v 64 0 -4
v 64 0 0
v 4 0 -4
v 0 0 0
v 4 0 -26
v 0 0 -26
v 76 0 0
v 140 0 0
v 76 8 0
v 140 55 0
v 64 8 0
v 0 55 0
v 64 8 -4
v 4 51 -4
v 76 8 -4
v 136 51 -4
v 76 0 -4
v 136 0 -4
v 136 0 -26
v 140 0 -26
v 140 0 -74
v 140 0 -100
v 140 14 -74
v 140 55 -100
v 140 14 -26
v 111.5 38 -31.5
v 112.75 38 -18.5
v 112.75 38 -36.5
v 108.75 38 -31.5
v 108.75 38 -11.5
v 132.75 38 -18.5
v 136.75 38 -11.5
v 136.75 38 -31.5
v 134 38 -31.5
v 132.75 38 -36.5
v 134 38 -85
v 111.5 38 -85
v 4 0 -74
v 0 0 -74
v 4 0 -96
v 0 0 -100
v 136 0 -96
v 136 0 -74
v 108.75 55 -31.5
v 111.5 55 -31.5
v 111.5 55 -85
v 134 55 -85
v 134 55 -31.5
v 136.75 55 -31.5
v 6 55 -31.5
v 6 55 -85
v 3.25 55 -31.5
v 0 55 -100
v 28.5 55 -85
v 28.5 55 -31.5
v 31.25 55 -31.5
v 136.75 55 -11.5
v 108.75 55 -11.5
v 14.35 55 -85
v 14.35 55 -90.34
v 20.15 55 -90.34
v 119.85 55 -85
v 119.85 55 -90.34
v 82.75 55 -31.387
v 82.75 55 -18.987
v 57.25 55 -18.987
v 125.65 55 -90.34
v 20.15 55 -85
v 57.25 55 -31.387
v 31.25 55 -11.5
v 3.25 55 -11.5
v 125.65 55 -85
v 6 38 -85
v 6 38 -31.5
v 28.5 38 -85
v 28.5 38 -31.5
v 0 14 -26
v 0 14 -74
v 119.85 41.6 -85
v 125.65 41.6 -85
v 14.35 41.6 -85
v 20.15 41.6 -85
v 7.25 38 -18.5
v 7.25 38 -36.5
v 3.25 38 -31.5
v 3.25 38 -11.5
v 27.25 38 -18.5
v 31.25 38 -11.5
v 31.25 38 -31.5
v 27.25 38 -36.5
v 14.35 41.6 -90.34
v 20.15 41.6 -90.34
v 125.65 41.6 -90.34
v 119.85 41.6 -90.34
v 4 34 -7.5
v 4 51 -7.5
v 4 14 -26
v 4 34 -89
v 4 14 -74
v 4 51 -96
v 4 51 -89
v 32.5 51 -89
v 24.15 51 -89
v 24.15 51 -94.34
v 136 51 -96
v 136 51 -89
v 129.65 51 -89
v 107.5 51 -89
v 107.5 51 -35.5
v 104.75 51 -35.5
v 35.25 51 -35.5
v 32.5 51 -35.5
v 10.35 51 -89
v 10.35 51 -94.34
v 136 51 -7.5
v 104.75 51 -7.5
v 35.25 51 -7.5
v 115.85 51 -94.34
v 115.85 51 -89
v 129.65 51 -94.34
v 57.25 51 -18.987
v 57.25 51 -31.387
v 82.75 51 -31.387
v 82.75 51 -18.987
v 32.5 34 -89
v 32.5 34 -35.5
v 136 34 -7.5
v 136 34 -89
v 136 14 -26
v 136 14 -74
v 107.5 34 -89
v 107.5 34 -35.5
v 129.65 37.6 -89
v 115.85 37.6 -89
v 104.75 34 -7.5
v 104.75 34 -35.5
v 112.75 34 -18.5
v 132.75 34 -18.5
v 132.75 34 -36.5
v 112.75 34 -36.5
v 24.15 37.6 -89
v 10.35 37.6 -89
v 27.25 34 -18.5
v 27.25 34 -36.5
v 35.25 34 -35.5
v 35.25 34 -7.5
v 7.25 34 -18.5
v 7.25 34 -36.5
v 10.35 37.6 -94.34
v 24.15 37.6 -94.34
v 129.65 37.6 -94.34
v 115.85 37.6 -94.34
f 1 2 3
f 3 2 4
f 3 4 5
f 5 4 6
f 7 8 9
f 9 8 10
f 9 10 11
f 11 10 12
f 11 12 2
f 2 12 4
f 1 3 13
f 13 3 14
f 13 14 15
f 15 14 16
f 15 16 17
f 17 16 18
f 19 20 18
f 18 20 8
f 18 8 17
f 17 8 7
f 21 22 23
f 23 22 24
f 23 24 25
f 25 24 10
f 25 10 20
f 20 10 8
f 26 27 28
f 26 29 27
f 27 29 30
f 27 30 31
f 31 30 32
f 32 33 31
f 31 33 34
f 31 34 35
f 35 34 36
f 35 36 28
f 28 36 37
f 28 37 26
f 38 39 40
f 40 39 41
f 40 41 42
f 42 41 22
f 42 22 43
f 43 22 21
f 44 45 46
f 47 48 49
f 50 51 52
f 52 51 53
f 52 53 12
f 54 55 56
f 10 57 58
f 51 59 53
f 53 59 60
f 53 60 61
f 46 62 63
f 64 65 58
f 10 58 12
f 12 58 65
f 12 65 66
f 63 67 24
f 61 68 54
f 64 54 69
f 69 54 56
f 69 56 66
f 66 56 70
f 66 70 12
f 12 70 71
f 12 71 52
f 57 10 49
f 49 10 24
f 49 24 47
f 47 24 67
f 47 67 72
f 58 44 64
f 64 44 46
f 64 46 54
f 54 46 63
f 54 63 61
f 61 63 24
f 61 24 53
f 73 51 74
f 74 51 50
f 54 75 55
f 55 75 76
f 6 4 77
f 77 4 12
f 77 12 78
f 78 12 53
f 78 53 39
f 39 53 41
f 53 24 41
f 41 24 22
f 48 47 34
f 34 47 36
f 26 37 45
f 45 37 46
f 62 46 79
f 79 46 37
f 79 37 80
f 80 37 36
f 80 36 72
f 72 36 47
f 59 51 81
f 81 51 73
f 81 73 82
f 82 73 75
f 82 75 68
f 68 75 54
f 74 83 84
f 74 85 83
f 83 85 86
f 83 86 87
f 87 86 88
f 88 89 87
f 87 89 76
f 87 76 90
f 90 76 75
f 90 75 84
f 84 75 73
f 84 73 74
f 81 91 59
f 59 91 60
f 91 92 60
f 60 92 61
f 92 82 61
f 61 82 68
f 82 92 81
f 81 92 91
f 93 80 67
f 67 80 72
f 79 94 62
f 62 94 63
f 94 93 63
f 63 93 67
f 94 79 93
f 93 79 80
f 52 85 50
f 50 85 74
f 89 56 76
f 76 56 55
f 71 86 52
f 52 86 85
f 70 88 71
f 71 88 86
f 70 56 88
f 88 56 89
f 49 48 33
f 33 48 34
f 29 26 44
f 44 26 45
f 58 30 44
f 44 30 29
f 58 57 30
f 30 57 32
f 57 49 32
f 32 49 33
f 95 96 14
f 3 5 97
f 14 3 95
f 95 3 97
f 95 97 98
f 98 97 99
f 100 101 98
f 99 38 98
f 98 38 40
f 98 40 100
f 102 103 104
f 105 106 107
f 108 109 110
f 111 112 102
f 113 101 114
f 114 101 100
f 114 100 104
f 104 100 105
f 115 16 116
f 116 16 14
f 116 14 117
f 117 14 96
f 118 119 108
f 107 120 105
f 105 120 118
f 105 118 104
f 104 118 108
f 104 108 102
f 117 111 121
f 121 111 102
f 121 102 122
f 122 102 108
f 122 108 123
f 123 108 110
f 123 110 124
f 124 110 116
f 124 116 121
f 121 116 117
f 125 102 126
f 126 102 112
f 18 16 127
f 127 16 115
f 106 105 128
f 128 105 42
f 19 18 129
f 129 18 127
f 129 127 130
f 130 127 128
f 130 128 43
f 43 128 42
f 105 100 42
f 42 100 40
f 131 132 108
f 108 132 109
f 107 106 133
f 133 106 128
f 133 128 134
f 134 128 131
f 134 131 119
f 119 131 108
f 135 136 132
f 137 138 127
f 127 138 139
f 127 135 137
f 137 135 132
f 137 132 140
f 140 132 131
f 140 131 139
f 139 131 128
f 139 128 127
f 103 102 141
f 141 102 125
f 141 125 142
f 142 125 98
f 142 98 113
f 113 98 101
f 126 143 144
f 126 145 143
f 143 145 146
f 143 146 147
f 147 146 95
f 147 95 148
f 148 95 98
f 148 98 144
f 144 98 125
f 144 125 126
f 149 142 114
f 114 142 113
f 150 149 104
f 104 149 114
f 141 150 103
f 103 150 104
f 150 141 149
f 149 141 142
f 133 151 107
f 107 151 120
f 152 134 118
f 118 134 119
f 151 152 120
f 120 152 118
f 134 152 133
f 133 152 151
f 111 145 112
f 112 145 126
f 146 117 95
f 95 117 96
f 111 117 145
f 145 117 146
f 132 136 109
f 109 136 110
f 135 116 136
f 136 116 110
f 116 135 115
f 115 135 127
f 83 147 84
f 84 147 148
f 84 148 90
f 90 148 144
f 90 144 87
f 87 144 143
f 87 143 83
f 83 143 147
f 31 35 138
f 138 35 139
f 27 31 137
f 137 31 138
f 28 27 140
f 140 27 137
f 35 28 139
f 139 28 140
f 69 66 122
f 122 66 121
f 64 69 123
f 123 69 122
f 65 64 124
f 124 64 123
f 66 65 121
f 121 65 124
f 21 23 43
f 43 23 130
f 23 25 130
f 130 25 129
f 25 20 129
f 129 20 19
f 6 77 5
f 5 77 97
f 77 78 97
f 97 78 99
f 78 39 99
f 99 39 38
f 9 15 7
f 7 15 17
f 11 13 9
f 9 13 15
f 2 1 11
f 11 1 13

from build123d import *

# Parameters (mm, degrees)
SKETCH1_W           = 140
SKETCH1_H           = 100.00000000000001
BOSS_EXTRUDE1_DEPTH = 55
CUT_EXTRUDE1_DEPTH  = 17
SKETCH3_W           = 5.800000000000001
SKETCH3_H           = 5.340000000000003
SKETCH3_W_2         = 5.799999999999969
CUT_EXTRUDE2_DEPTH  = 13.4
CUT_EXTRUDE3_DEPTH  = 17
SHELL1_T            = -4
CUT_EXTRUDE4_DEPTH  = 177.19307591389622
CUT_EXTRUDE5_DEPTH  = 181.62391868188442
SKETCH9_W           = 48.000000000000014
SKETCH9_H           = 14.000000000000002
CUT_EXTRUDE6_DEPTH  = 181.62391868188442
CUT_EXTRUDE7_DEPTH  = 4


with BuildPart() as part:
    # Sketch1 → Boss-Extrude1 (new body)
    with BuildSketch(Plane(origin=(0, 0, 0), x_dir=(1, 0, 0), z_dir=(0, 1, 0))):
        with Locations((70, 50.00000000000001)):
            Rectangle(SKETCH1_W, SKETCH1_H)
    extrude(amount=BOSS_EXTRUDE1_DEPTH)

    # Sketch2 → Cut-Extrude1 (cut)
    with BuildSketch(Plane(origin=(0, 55, 0), x_dir=(1, 0, 0), z_dir=(0, 1, 0))):
        Polygon((6.000000000000011, 85), (28.50000000000001, 84.99999999999999), (28.50000000000001, 15.000000000000014), (6.000000000000011, 15), align=None)
        Polygon((134.00000000000003, 15.000000000000014), (111.50000000000003, 15.000000000000023), (111.5, 85), (134, 85.00000000000001), align=None)
    extrude(amount=-CUT_EXTRUDE1_DEPTH, mode=Mode.SUBTRACT)

    # Sketch3 → Cut-Extrude2 (cut)
    with BuildSketch(Plane(origin=(0, 55, 0), x_dir=(1, 0, 0), z_dir=(0, 1, 0))):
        with Locations((17.250000000000014, 87.66999999999999)):
            Rectangle(SKETCH3_W, SKETCH3_H)
        with Locations((122.74999999999997, 87.67)):
            Rectangle(SKETCH3_W_2, SKETCH3_H)
    extrude(amount=-CUT_EXTRUDE2_DEPTH, mode=Mode.SUBTRACT)

    # Sketch4 → Cut-Extrude3 (cut)
    with BuildSketch(Plane(origin=(0, 55, 0), x_dir=(1, 0, 0), z_dir=(0, 1, 0))):
        Polygon((3.2500000000000098, 31.5), (31.250000000000014, 31.5), (31.250000000000014, 11.5), (3.2500000000000115, 11.5), align=None)
        Polygon((136.75, 11.500000000000016), (108.75000000000003, 11.500000000000009), (108.75000000000001, 31.500000000000007), (136.75000000000003, 31.500000000000014), align=None)
    extrude(amount=-CUT_EXTRUDE3_DEPTH, mode=Mode.SUBTRACT)

    # Shell1
    shell1_openings = [part.faces().sort_by_distance(p)[0] for p in [
        (70, 0, -50),
    ]]
    offset(amount=SHELL1_T, openings=shell1_openings, kind=Kind.INTERSECTION)

    # Sketch5 → Cut-Extrude4 (cut, through all)
    with BuildSketch(Plane(origin=(0, 38, 0), x_dir=(1, 0, 0), z_dir=(0, 1, 0))):
        Polygon((7.25000000000001, 36.5), (27.250000000000014, 36.5), (27.25000000000001, 18.5), (7.2500000000000115, 18.5), align=None)
        Polygon((132.75000000000003, 18.500000000000014), (112.75000000000001, 18.50000000000001), (112.75000000000001, 36.500000000000014), (132.75000000000003, 36.500000000000014), align=None)
    extrude(amount=-CUT_EXTRUDE4_DEPTH, mode=Mode.SUBTRACT)

    # Sketch6 → Cut-Extrude5 (cut, through all)
    with BuildSketch(Plane(origin=(0, 55, 0), x_dir=(1, 0, 0), z_dir=(0, 1, 0))):
        Polygon((57.24999999999999, 31.38695956479682), (82.75000000000001, 31.38695956479682), (82.75, 18.98695956479682), (57.25000000000001, 18.98695956479682), align=None)
    extrude(amount=-CUT_EXTRUDE5_DEPTH, mode=Mode.SUBTRACT)

    # Sketch9 → Cut-Extrude6 (cut, through all)
    with BuildSketch(Plane(origin=(140, 0, 0), x_dir=(0, 0, -1), z_dir=(1, 0, 0))):
        with Locations((50.00000000000001, 7.000000000000001)):
            Rectangle(SKETCH9_W, SKETCH9_H)
    extrude(amount=-CUT_EXTRUDE6_DEPTH, mode=Mode.SUBTRACT)

    # Sketch8 → Cut-Extrude7 (cut)
    with BuildSketch(Plane.XY):
        Polygon((64, 5.2e-15), (76.00000000000001, 5.2e-15), (76.00000000000001, 8.000000000000004), (64, 8), align=None)
    extrude(amount=-CUT_EXTRUDE7_DEPTH, mode=Mode.SUBTRACT)


solid = part.part
